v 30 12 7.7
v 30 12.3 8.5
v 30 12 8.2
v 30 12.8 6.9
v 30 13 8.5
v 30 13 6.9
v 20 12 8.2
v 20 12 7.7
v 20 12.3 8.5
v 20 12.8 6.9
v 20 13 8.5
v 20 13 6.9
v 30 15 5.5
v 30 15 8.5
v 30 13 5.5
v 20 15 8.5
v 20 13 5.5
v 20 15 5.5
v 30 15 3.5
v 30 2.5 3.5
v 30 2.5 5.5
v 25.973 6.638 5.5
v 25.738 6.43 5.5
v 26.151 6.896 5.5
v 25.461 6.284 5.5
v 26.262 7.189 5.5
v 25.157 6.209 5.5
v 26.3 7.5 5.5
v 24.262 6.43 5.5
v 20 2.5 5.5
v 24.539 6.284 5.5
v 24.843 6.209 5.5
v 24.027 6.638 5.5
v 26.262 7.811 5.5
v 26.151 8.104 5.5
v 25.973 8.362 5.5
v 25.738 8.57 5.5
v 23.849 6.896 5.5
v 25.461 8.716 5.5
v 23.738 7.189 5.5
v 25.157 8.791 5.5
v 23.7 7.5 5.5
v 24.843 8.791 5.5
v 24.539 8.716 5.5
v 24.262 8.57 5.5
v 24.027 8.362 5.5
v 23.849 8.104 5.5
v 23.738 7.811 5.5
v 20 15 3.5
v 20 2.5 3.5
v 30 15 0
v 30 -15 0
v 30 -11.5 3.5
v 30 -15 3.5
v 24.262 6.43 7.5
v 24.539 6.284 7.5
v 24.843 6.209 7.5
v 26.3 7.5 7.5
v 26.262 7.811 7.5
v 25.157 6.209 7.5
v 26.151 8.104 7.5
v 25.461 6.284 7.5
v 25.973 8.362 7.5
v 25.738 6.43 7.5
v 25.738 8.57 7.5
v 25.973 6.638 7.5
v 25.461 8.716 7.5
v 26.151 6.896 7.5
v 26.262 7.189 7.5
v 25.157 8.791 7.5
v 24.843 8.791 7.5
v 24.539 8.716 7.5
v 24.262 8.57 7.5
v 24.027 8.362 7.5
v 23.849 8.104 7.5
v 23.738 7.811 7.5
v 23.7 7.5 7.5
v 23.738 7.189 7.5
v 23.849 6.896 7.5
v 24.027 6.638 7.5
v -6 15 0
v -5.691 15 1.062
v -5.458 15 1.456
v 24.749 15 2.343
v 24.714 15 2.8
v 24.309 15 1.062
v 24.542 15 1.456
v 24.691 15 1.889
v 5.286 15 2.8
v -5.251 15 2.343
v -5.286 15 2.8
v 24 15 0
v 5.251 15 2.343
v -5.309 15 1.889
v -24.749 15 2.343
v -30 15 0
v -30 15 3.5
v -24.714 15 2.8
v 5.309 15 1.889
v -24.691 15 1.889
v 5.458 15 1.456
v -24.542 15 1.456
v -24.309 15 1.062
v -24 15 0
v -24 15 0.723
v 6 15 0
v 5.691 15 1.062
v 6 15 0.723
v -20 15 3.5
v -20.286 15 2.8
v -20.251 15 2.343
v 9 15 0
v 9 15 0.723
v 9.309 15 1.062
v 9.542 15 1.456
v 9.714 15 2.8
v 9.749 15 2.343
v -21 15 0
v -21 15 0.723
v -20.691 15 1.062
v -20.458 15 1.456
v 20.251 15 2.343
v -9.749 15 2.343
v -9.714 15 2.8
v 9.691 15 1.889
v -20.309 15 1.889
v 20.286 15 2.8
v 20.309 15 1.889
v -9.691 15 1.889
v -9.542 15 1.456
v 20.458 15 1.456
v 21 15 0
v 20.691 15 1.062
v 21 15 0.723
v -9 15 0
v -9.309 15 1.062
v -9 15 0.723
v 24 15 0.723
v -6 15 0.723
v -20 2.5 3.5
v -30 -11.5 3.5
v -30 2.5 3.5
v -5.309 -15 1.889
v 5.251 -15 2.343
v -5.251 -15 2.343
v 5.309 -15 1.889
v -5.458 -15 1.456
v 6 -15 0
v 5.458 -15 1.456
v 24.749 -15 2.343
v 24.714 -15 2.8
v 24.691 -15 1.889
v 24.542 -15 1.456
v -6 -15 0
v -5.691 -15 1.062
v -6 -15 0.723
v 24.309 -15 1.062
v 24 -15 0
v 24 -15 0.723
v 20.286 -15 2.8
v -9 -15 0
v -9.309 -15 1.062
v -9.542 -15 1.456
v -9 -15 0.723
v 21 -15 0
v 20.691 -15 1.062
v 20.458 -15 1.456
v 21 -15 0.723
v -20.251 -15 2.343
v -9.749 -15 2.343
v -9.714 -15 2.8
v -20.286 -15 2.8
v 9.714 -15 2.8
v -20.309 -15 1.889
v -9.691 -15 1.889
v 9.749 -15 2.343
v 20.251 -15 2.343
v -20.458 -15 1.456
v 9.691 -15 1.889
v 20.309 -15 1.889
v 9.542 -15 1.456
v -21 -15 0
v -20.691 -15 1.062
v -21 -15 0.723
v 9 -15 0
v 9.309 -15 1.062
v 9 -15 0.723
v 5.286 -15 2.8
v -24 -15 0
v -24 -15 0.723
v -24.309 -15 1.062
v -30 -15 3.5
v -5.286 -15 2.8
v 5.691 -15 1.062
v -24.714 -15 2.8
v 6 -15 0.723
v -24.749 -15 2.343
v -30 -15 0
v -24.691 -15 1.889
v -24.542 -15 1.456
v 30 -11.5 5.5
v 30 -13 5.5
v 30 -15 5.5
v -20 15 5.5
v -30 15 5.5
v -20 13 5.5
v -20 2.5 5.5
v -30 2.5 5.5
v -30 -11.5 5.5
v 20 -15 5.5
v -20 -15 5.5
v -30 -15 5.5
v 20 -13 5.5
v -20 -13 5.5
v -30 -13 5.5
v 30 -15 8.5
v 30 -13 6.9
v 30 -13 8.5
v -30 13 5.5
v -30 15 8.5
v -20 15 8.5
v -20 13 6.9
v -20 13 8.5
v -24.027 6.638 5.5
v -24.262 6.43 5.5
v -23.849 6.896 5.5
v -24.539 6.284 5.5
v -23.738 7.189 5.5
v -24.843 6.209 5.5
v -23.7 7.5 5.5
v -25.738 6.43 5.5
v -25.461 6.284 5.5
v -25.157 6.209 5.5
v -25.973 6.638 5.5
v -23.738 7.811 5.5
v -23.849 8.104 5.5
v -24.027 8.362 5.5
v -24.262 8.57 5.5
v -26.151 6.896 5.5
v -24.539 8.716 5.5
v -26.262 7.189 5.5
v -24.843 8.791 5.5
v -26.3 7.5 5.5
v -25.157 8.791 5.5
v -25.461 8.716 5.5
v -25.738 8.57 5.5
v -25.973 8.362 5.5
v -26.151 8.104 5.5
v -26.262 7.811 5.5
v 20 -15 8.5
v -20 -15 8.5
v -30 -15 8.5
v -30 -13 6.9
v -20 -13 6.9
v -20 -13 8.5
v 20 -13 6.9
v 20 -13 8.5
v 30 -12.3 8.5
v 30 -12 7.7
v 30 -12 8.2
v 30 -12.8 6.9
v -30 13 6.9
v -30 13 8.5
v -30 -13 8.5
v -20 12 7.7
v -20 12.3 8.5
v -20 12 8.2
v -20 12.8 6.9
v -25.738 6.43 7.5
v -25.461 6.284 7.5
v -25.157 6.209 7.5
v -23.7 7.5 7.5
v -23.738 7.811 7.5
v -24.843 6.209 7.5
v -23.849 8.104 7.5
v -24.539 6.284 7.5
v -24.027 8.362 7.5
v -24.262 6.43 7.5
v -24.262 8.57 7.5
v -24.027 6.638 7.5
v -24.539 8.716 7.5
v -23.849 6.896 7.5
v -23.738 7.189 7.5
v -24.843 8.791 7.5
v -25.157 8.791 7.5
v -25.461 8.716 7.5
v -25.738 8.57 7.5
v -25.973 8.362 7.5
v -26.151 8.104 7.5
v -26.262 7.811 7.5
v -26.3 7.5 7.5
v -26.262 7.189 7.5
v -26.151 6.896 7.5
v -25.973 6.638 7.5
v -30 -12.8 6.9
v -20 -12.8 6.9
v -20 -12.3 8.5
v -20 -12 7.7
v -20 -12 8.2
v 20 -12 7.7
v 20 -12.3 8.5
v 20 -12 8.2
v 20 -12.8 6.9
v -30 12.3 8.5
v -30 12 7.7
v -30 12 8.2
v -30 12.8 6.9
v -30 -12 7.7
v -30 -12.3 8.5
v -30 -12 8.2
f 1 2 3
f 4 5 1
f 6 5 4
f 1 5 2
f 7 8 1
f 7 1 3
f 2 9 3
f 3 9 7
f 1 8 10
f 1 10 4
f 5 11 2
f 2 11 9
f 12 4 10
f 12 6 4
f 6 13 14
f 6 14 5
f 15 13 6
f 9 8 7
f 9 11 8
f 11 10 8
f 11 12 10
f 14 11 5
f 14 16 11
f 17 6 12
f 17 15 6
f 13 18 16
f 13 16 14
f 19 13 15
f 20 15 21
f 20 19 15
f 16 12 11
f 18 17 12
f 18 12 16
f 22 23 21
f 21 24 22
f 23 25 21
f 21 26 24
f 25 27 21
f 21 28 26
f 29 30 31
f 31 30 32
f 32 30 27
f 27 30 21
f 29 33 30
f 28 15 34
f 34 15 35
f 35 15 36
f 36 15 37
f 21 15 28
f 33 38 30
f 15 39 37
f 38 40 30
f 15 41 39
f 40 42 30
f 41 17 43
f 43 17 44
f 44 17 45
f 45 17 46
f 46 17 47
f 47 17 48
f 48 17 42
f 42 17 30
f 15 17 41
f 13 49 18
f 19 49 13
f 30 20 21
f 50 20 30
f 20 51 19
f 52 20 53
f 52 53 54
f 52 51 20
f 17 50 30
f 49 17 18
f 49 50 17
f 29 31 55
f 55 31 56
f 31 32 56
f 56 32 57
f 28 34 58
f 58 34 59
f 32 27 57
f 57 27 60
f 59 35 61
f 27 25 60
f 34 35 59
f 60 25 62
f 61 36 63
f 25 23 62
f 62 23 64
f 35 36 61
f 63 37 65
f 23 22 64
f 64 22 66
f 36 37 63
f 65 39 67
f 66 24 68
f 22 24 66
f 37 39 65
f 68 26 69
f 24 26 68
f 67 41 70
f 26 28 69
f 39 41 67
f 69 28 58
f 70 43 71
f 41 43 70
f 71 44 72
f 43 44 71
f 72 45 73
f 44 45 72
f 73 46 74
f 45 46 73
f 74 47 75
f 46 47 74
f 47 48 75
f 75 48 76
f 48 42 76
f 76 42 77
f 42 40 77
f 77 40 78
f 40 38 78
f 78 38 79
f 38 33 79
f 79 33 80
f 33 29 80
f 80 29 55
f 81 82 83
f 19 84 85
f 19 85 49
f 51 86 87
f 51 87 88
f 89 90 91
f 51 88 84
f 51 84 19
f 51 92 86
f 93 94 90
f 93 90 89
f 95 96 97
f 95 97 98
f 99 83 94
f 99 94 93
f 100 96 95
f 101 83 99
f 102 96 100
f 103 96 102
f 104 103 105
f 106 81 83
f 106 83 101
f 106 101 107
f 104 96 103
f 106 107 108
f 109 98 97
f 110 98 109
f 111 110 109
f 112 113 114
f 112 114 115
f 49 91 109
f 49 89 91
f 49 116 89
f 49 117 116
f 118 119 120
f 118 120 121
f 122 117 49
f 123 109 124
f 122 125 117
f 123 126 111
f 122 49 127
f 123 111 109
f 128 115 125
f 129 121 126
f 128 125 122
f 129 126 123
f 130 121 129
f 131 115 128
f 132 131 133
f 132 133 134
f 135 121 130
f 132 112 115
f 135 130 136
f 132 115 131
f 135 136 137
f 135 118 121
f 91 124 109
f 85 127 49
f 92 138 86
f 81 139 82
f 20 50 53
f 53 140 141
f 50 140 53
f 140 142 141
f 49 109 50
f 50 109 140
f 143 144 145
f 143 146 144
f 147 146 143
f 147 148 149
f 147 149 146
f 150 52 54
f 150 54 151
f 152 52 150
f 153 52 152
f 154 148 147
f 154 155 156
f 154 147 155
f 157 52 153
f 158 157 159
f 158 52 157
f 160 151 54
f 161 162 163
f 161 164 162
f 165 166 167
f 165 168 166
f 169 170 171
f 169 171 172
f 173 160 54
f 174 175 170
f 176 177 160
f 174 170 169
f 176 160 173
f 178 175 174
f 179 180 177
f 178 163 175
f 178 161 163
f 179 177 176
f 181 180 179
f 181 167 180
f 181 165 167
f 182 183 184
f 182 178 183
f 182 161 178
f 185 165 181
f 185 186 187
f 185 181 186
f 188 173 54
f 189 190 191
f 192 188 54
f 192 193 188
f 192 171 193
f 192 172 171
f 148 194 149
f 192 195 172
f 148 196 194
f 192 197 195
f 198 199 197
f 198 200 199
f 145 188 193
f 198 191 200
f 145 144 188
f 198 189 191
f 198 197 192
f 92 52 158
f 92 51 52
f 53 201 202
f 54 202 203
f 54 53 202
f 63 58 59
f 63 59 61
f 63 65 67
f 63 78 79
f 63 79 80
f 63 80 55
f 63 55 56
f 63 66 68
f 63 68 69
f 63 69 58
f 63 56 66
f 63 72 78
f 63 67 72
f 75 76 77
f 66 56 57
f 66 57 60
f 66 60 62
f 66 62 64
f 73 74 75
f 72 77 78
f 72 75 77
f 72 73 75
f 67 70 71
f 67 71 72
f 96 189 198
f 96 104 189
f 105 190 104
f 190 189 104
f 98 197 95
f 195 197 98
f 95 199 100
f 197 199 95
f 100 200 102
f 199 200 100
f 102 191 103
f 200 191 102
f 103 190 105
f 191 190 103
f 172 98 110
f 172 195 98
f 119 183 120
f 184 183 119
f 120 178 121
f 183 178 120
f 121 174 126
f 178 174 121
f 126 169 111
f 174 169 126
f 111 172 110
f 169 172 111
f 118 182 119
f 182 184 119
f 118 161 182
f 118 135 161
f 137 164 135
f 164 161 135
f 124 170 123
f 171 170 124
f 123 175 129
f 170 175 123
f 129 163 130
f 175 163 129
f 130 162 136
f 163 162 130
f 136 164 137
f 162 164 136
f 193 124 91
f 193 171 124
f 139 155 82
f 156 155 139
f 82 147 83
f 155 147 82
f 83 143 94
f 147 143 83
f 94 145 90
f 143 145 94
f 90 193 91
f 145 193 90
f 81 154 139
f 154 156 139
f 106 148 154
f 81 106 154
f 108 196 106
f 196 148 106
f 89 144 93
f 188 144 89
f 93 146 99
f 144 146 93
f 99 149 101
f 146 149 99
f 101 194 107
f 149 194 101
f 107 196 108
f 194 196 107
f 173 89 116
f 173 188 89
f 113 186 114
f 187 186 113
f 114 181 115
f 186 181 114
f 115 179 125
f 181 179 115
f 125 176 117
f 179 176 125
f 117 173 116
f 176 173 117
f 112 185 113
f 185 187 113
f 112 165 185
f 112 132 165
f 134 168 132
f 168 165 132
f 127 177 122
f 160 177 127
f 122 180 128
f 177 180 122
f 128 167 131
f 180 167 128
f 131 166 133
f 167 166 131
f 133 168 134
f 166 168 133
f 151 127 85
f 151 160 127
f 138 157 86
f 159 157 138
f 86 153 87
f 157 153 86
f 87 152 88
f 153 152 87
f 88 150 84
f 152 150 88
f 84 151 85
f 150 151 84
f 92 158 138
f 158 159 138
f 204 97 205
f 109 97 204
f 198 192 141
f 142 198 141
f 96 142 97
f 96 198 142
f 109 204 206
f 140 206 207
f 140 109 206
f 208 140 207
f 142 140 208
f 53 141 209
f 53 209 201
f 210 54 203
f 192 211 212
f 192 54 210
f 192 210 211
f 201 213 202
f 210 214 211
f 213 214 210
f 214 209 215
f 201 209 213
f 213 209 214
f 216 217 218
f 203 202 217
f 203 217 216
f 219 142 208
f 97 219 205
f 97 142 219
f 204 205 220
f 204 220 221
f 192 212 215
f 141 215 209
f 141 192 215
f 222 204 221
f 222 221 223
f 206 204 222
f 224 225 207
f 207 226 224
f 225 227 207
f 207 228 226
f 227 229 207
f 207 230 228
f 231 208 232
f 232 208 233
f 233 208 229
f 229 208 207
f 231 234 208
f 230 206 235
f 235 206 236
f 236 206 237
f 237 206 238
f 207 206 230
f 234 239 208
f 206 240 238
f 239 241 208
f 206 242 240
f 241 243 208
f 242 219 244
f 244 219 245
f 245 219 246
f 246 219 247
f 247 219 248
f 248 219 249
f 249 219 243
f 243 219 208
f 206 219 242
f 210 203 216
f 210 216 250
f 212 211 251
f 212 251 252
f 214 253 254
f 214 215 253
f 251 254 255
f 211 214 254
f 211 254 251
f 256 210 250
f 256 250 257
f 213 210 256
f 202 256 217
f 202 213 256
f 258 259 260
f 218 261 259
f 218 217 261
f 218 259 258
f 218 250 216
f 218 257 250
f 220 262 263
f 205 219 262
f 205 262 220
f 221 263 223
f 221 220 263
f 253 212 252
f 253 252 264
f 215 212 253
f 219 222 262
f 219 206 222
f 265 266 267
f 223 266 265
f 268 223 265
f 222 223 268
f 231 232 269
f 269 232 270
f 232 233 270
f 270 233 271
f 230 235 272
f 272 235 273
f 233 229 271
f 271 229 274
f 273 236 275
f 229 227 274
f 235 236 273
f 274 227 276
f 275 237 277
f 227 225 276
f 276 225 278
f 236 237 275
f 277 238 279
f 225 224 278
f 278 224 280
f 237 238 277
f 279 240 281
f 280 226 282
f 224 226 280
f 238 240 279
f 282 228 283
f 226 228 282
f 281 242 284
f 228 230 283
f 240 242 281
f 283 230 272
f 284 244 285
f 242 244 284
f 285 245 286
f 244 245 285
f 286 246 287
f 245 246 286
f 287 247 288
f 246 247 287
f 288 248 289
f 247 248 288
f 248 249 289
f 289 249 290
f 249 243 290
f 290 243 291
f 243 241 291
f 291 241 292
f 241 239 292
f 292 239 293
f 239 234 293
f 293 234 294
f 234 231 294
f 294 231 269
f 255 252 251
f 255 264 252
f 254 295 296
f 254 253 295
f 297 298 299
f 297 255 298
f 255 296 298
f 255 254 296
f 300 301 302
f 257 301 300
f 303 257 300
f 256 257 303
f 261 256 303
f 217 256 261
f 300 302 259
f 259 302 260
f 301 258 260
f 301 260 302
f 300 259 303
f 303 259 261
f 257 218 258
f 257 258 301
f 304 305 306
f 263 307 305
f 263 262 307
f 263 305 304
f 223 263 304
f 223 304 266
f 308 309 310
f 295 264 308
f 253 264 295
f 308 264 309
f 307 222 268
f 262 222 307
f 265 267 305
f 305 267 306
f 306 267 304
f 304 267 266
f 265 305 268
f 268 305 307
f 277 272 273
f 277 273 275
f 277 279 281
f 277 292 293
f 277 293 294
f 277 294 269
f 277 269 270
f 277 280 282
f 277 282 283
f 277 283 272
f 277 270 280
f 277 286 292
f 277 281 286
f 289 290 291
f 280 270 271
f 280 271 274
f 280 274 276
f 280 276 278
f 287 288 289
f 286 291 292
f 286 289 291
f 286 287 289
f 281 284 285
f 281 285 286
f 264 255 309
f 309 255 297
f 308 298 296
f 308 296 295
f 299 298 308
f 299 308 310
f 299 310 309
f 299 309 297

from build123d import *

# Parameters (mm, degrees)
SKETCH_W                = 60
SKETCH_H                = 30
PAD_DEPTH               = 3.5
POCKET_DEPTH            = 30.001
LINEARPATTERN_COUNT     = 4
LINEARPATTERN_PITCH     = 15
SKETCH002_W             = 10
SKETCH002_H             = 12.5
SKETCH002_W_2           = 60
SKETCH002_H_2           = 3.5
PAD001_DEPTH            = 2
SKETCH003_R             = 1.3
PAD002_DEPTH            = 2
SKETCH004_W             = 10
SKETCH004_H             = 2
PAD003_DEPTH            = 3
SKETCH005_W             = 10
SKETCH005_H             = 1.6
PAD004_DEPTH            = 1
SKETCH005_MIRRORED_2_W  = 10
SKETCH005_MIRRORED_2_H  = 1.6
PAD004_MIRRORED_2_DEPTH = 1
CHAMFER_SIZE            = 0.8
CHAMFER001_SIZE         = 0.3


with BuildPart() as part:
    # Sketch → Pad (new body)
    with BuildSketch(Plane.XY):
        Rectangle(SKETCH_W, SKETCH_H)
    extrude(amount=PAD_DEPTH)

    # Sketch001 (on Face3 of Pad) → Pocket (cut, through all)
    with BuildSketch(Plane.XZ.offset(15)):
        with BuildLine():
            Line((-24, 0.722949), (-24, 0))
            Line((-24, 0), (-21, 0))
            Line((-21, 0), (-21, 0.722949))
            ThreePointArc((-21, 0.722949), (-20.37226, 1.668412), (-20.285841, 2.8))
            Line((-24.714159, 2.8), (-20.285841, 2.8))
            ThreePointArc((-24.714159, 2.8), (-24.62774, 1.668412), (-24, 0.722949))
        make_face()
    pocket = extrude(amount=-POCKET_DEPTH, mode=Mode.SUBTRACT)

    # LinearPattern: Pocket ×4
    with Locations(*[(i * LINEARPATTERN_PITCH, 0, 0) for i in range(1, LINEARPATTERN_COUNT)]):
        add(pocket, mode=Mode.SUBTRACT)

    # Sketch002 (on Face28 of LinearPattern) → Pad001 (join)
    with BuildSketch(Plane.XY.offset(3.5)):
        with Locations((-25, 8.75)):
            Rectangle(SKETCH002_W, SKETCH002_H)
        with Locations((0, -13.25)):
            Rectangle(SKETCH002_W_2, SKETCH002_H_2)
        with Locations((25, 8.75)):
            Rectangle(SKETCH002_W, SKETCH002_H)
    extrude(amount=PAD001_DEPTH)

    # Sketch003 (on Face37 of Pad001) → Pad002 (join)
    with BuildSketch(Plane.XY.offset(5.5)):
        with Locations((-25, 7.5)):
            Circle(SKETCH003_R)
        with Locations((25, 7.5)):
            Circle(SKETCH003_R)
    extrude(amount=PAD002_DEPTH)

    # Sketch004 (on Face37 of Pad002) → Pad003 (join)
    with BuildSketch(Plane.XY.offset(5.5)):
        with Locations((-25, 14)):
            Rectangle(SKETCH004_W, SKETCH004_H)
        with Locations((25, 14)):
            Rectangle(SKETCH004_W, SKETCH004_H)
        with Locations((-25, -14)):
            Rectangle(SKETCH004_W, SKETCH004_H)
        with Locations((25, -14)):
            Rectangle(SKETCH004_W, SKETCH004_H)
    extrude(amount=PAD003_DEPTH)

    # Sketch005 (on Face65 of Pad003) → Pad004 (join)
    with BuildSketch(Plane.XZ.offset(-13)):
        with Locations((-25, 7.7)):
            Rectangle(SKETCH005_W, SKETCH005_H)
    pad004 = extrude(amount=PAD004_DEPTH)

    # Sketch005 Mirrored 2 → Pad004 Mirrored 2 (add)
    with BuildSketch(Plane(origin=(0, 13, 0), x_dir=(-1, 0, 0), z_dir=(0, 1, 0))):
        with Locations((-25, 7.7)):
            Rectangle(SKETCH005_MIRRORED_2_W, SKETCH005_MIRRORED_2_H)
    pad004_mirrored_2 = extrude(amount=-PAD004_MIRRORED_2_DEPTH)

    # Mirrored001: Pad004, Pad004 Mirrored 2 across XZ
    add(pad004.mirror(Plane.XZ))
    add(pad004_mirrored_2.mirror(Plane.XZ))

    # Chamfer
    chamfer_edges = [part.edges().sort_by_distance(p)[0] for p in [
        (-25, -12, 6.9),
        (25, -12, 6.9),
        (-25, 12, 6.9),
        (25, 12, 6.9),
    ]]
    chamfer(chamfer_edges, length=CHAMFER_SIZE)

    # Chamfer001
    chamfer001_edges = [part.edges().sort_by_distance(p)[0] for p in [
        (25, 12, 8.5),
        (-25, 12, 8.5),
        (25, -12, 8.5),
        (-25, -12, 8.5),
    ]]
    chamfer(chamfer001_edges, length=CHAMFER001_SIZE)


solid = part.part
